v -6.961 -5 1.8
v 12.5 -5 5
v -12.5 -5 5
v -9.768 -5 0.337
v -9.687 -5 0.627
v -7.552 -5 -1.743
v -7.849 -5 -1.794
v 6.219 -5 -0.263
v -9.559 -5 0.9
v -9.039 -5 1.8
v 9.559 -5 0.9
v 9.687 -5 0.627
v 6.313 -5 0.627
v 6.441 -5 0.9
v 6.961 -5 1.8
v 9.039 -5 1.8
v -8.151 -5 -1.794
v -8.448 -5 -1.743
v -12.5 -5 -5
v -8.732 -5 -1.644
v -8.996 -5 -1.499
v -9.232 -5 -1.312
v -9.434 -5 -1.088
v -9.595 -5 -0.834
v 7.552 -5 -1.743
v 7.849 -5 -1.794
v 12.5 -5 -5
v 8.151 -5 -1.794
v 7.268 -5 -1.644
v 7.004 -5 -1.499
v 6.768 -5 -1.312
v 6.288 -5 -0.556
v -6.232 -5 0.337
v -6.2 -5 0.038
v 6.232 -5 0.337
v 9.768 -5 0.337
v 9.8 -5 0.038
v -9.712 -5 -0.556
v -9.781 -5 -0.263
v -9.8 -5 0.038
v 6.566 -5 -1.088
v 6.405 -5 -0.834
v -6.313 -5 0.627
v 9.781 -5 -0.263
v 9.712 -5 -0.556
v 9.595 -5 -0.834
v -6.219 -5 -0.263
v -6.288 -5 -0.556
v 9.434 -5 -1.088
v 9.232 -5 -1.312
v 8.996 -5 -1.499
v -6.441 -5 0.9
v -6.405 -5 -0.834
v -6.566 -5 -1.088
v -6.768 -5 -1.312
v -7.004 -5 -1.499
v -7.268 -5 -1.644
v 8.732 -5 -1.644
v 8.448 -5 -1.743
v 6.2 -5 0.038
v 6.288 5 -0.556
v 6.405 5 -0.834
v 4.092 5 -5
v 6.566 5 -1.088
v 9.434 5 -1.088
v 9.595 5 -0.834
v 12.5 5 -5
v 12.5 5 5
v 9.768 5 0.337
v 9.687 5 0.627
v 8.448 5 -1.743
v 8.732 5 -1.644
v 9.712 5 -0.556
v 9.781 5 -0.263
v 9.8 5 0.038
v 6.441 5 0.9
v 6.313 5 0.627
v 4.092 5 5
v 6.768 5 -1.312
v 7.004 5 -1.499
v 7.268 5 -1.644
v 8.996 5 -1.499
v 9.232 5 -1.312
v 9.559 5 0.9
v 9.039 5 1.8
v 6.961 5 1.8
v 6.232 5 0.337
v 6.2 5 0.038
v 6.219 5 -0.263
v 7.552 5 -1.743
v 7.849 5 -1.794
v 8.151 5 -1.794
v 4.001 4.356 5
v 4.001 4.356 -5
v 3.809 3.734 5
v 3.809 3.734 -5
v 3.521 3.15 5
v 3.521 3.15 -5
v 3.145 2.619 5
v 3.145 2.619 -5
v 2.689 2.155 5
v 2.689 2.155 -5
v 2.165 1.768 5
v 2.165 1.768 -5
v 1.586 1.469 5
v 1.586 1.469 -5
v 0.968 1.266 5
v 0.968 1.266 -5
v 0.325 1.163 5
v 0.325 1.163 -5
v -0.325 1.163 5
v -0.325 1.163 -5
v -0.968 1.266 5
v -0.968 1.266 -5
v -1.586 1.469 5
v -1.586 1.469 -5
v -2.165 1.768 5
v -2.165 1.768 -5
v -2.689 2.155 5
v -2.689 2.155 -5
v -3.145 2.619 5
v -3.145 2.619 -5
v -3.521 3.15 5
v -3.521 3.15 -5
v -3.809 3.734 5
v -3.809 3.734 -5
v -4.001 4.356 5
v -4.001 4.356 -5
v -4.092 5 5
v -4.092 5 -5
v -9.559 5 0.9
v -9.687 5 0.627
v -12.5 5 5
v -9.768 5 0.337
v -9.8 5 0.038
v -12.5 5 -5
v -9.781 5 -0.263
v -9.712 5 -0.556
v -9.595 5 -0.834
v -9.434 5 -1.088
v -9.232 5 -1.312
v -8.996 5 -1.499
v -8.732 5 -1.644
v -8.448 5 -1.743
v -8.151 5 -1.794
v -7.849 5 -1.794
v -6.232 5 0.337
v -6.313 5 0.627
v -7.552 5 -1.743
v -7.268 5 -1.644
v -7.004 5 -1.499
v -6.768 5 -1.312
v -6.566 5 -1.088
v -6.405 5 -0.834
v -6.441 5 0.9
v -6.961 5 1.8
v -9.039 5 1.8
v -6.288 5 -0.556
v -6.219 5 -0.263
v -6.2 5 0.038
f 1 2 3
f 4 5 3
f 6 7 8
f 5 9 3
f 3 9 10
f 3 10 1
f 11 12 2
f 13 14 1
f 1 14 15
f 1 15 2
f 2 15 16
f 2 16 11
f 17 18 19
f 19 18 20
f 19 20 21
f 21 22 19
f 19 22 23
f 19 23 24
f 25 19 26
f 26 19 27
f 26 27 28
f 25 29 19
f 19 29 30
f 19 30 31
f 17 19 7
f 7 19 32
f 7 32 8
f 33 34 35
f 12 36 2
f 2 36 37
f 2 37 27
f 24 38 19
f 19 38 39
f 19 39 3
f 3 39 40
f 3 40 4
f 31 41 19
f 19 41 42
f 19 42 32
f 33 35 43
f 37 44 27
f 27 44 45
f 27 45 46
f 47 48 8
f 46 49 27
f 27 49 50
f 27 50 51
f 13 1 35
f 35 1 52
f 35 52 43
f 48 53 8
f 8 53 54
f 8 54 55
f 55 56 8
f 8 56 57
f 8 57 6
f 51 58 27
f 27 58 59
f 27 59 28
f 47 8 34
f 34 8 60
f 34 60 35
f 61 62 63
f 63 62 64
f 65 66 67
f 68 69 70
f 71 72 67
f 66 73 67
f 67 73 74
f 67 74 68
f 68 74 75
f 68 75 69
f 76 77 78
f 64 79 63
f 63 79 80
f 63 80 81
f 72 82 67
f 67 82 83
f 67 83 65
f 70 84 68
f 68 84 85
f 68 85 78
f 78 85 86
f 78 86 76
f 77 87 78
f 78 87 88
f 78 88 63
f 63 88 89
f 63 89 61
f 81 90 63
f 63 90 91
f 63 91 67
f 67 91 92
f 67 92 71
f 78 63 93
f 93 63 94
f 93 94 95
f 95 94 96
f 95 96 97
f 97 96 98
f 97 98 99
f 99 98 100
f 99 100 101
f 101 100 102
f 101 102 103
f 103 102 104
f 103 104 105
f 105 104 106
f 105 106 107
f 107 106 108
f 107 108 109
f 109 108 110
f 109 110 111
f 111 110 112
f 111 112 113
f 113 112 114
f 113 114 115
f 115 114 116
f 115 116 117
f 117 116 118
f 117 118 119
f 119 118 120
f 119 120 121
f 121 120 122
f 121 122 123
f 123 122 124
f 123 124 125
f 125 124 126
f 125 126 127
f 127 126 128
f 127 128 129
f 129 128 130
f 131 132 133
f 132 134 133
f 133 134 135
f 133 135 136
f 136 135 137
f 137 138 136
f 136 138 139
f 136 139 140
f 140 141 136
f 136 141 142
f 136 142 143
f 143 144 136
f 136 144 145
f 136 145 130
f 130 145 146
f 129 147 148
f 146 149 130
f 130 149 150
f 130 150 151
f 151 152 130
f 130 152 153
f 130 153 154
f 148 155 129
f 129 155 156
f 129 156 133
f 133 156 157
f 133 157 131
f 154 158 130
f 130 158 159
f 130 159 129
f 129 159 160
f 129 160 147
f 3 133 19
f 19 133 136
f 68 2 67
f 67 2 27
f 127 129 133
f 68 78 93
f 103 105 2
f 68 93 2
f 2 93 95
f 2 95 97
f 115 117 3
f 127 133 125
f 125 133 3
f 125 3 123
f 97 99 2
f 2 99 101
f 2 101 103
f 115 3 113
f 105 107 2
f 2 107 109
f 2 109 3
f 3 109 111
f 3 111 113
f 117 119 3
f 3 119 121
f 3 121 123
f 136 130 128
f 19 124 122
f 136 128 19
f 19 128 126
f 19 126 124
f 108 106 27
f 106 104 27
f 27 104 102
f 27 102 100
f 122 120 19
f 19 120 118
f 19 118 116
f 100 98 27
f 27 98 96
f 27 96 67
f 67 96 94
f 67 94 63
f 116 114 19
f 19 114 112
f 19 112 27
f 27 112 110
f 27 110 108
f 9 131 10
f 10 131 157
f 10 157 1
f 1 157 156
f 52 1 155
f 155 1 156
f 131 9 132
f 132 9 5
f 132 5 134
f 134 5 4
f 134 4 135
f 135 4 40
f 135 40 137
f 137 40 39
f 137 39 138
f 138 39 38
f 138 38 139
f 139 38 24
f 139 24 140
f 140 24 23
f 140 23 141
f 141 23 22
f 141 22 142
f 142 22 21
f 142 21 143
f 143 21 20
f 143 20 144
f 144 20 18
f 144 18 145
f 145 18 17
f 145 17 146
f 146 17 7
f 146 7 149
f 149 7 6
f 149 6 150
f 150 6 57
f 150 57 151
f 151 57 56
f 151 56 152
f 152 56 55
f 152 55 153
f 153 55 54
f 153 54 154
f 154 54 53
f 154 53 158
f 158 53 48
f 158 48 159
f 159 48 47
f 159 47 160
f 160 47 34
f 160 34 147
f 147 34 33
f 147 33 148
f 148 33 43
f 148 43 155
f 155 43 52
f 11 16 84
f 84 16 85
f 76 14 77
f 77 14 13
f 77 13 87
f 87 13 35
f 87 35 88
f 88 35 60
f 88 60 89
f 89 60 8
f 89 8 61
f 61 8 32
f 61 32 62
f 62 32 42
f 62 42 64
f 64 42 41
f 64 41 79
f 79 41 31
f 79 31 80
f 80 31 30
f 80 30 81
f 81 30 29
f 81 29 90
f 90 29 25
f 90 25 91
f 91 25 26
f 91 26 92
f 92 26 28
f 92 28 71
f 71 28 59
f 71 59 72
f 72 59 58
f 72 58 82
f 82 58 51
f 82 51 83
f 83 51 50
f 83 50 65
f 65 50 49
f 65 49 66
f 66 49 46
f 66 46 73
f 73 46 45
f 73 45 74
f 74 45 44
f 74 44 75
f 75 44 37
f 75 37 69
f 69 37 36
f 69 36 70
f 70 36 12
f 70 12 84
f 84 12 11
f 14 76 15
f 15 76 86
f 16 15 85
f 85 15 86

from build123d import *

# Parameters (mm, degrees)
MAIN_BODY_DEPTH   = 5
SCREW_HOLES_REACH = 18.771


with BuildPart() as part:
    # Schizzo1 → Main body (new, symmetric)
    with BuildSketch(Plane.XY):
        with BuildLine():
            Line((-12.5, -5), (12.5, -5))
            Line((12.5, -5), (12.5, 5))
            Line((12.5, 5), (4.092370951, 5))
            ThreePointArc((4.092370951, 5), (0, 1.15), (-4.092370951, 5))
            Line((-4.092370951, 5), (-12.5, 5))
            Line((-12.5, 5), (-12.5, -5))
        make_face()
    extrude(amount=MAIN_BODY_DEPTH, both=True)

    # Schizzo2 → screw holes (cut, up to next)
    with BuildSketch(Plane.XZ.offset(5), mode=Mode.PRIVATE) as screw_holes_sk1:
        with BuildLine():
            Line((-6.960769515, 1.8), (-6.441154273, 0.9))
            ThreePointArc((-6.441154273, 0.9), (-8, -1.8), (-9.558845727, 0.9))
            Line((-9.558845727, 0.9), (-9.039230485, 1.8))
            Line((-9.039230485, 1.8), (-6.960769515, 1.8))
        make_face()
    screw_holes_tool1 = extrude(screw_holes_sk1.sketch, amount=-SCREW_HOLES_REACH, mode=Mode.PRIVATE) & part.part
    # Schizzo2 → screw holes (cut, up to next)
    with BuildSketch(Plane.XZ.offset(5), mode=Mode.PRIVATE) as screw_holes_sk2:
        with BuildLine():
            Line((6.960769515, 1.8), (9.039230485, 1.8))
            Line((9.039230485, 1.8), (9.558845727, 0.9))
            ThreePointArc((9.558845727, 0.9), (8, -1.8), (6.441154273, 0.9))
            Line((6.441154273, 0.9), (6.960769515, 1.8))
        make_face()
    screw_holes_tool2 = extrude(screw_holes_sk2.sketch, amount=-SCREW_HOLES_REACH, mode=Mode.PRIVATE) & part.part
    add(screw_holes_tool1.solids().sort_by_distance((-8, -5, 0.053309))[0], mode=Mode.SUBTRACT)
    add(screw_holes_tool2.solids().sort_by_distance((8, -5, 0.053309))[0], mode=Mode.SUBTRACT)


solid = part.part
